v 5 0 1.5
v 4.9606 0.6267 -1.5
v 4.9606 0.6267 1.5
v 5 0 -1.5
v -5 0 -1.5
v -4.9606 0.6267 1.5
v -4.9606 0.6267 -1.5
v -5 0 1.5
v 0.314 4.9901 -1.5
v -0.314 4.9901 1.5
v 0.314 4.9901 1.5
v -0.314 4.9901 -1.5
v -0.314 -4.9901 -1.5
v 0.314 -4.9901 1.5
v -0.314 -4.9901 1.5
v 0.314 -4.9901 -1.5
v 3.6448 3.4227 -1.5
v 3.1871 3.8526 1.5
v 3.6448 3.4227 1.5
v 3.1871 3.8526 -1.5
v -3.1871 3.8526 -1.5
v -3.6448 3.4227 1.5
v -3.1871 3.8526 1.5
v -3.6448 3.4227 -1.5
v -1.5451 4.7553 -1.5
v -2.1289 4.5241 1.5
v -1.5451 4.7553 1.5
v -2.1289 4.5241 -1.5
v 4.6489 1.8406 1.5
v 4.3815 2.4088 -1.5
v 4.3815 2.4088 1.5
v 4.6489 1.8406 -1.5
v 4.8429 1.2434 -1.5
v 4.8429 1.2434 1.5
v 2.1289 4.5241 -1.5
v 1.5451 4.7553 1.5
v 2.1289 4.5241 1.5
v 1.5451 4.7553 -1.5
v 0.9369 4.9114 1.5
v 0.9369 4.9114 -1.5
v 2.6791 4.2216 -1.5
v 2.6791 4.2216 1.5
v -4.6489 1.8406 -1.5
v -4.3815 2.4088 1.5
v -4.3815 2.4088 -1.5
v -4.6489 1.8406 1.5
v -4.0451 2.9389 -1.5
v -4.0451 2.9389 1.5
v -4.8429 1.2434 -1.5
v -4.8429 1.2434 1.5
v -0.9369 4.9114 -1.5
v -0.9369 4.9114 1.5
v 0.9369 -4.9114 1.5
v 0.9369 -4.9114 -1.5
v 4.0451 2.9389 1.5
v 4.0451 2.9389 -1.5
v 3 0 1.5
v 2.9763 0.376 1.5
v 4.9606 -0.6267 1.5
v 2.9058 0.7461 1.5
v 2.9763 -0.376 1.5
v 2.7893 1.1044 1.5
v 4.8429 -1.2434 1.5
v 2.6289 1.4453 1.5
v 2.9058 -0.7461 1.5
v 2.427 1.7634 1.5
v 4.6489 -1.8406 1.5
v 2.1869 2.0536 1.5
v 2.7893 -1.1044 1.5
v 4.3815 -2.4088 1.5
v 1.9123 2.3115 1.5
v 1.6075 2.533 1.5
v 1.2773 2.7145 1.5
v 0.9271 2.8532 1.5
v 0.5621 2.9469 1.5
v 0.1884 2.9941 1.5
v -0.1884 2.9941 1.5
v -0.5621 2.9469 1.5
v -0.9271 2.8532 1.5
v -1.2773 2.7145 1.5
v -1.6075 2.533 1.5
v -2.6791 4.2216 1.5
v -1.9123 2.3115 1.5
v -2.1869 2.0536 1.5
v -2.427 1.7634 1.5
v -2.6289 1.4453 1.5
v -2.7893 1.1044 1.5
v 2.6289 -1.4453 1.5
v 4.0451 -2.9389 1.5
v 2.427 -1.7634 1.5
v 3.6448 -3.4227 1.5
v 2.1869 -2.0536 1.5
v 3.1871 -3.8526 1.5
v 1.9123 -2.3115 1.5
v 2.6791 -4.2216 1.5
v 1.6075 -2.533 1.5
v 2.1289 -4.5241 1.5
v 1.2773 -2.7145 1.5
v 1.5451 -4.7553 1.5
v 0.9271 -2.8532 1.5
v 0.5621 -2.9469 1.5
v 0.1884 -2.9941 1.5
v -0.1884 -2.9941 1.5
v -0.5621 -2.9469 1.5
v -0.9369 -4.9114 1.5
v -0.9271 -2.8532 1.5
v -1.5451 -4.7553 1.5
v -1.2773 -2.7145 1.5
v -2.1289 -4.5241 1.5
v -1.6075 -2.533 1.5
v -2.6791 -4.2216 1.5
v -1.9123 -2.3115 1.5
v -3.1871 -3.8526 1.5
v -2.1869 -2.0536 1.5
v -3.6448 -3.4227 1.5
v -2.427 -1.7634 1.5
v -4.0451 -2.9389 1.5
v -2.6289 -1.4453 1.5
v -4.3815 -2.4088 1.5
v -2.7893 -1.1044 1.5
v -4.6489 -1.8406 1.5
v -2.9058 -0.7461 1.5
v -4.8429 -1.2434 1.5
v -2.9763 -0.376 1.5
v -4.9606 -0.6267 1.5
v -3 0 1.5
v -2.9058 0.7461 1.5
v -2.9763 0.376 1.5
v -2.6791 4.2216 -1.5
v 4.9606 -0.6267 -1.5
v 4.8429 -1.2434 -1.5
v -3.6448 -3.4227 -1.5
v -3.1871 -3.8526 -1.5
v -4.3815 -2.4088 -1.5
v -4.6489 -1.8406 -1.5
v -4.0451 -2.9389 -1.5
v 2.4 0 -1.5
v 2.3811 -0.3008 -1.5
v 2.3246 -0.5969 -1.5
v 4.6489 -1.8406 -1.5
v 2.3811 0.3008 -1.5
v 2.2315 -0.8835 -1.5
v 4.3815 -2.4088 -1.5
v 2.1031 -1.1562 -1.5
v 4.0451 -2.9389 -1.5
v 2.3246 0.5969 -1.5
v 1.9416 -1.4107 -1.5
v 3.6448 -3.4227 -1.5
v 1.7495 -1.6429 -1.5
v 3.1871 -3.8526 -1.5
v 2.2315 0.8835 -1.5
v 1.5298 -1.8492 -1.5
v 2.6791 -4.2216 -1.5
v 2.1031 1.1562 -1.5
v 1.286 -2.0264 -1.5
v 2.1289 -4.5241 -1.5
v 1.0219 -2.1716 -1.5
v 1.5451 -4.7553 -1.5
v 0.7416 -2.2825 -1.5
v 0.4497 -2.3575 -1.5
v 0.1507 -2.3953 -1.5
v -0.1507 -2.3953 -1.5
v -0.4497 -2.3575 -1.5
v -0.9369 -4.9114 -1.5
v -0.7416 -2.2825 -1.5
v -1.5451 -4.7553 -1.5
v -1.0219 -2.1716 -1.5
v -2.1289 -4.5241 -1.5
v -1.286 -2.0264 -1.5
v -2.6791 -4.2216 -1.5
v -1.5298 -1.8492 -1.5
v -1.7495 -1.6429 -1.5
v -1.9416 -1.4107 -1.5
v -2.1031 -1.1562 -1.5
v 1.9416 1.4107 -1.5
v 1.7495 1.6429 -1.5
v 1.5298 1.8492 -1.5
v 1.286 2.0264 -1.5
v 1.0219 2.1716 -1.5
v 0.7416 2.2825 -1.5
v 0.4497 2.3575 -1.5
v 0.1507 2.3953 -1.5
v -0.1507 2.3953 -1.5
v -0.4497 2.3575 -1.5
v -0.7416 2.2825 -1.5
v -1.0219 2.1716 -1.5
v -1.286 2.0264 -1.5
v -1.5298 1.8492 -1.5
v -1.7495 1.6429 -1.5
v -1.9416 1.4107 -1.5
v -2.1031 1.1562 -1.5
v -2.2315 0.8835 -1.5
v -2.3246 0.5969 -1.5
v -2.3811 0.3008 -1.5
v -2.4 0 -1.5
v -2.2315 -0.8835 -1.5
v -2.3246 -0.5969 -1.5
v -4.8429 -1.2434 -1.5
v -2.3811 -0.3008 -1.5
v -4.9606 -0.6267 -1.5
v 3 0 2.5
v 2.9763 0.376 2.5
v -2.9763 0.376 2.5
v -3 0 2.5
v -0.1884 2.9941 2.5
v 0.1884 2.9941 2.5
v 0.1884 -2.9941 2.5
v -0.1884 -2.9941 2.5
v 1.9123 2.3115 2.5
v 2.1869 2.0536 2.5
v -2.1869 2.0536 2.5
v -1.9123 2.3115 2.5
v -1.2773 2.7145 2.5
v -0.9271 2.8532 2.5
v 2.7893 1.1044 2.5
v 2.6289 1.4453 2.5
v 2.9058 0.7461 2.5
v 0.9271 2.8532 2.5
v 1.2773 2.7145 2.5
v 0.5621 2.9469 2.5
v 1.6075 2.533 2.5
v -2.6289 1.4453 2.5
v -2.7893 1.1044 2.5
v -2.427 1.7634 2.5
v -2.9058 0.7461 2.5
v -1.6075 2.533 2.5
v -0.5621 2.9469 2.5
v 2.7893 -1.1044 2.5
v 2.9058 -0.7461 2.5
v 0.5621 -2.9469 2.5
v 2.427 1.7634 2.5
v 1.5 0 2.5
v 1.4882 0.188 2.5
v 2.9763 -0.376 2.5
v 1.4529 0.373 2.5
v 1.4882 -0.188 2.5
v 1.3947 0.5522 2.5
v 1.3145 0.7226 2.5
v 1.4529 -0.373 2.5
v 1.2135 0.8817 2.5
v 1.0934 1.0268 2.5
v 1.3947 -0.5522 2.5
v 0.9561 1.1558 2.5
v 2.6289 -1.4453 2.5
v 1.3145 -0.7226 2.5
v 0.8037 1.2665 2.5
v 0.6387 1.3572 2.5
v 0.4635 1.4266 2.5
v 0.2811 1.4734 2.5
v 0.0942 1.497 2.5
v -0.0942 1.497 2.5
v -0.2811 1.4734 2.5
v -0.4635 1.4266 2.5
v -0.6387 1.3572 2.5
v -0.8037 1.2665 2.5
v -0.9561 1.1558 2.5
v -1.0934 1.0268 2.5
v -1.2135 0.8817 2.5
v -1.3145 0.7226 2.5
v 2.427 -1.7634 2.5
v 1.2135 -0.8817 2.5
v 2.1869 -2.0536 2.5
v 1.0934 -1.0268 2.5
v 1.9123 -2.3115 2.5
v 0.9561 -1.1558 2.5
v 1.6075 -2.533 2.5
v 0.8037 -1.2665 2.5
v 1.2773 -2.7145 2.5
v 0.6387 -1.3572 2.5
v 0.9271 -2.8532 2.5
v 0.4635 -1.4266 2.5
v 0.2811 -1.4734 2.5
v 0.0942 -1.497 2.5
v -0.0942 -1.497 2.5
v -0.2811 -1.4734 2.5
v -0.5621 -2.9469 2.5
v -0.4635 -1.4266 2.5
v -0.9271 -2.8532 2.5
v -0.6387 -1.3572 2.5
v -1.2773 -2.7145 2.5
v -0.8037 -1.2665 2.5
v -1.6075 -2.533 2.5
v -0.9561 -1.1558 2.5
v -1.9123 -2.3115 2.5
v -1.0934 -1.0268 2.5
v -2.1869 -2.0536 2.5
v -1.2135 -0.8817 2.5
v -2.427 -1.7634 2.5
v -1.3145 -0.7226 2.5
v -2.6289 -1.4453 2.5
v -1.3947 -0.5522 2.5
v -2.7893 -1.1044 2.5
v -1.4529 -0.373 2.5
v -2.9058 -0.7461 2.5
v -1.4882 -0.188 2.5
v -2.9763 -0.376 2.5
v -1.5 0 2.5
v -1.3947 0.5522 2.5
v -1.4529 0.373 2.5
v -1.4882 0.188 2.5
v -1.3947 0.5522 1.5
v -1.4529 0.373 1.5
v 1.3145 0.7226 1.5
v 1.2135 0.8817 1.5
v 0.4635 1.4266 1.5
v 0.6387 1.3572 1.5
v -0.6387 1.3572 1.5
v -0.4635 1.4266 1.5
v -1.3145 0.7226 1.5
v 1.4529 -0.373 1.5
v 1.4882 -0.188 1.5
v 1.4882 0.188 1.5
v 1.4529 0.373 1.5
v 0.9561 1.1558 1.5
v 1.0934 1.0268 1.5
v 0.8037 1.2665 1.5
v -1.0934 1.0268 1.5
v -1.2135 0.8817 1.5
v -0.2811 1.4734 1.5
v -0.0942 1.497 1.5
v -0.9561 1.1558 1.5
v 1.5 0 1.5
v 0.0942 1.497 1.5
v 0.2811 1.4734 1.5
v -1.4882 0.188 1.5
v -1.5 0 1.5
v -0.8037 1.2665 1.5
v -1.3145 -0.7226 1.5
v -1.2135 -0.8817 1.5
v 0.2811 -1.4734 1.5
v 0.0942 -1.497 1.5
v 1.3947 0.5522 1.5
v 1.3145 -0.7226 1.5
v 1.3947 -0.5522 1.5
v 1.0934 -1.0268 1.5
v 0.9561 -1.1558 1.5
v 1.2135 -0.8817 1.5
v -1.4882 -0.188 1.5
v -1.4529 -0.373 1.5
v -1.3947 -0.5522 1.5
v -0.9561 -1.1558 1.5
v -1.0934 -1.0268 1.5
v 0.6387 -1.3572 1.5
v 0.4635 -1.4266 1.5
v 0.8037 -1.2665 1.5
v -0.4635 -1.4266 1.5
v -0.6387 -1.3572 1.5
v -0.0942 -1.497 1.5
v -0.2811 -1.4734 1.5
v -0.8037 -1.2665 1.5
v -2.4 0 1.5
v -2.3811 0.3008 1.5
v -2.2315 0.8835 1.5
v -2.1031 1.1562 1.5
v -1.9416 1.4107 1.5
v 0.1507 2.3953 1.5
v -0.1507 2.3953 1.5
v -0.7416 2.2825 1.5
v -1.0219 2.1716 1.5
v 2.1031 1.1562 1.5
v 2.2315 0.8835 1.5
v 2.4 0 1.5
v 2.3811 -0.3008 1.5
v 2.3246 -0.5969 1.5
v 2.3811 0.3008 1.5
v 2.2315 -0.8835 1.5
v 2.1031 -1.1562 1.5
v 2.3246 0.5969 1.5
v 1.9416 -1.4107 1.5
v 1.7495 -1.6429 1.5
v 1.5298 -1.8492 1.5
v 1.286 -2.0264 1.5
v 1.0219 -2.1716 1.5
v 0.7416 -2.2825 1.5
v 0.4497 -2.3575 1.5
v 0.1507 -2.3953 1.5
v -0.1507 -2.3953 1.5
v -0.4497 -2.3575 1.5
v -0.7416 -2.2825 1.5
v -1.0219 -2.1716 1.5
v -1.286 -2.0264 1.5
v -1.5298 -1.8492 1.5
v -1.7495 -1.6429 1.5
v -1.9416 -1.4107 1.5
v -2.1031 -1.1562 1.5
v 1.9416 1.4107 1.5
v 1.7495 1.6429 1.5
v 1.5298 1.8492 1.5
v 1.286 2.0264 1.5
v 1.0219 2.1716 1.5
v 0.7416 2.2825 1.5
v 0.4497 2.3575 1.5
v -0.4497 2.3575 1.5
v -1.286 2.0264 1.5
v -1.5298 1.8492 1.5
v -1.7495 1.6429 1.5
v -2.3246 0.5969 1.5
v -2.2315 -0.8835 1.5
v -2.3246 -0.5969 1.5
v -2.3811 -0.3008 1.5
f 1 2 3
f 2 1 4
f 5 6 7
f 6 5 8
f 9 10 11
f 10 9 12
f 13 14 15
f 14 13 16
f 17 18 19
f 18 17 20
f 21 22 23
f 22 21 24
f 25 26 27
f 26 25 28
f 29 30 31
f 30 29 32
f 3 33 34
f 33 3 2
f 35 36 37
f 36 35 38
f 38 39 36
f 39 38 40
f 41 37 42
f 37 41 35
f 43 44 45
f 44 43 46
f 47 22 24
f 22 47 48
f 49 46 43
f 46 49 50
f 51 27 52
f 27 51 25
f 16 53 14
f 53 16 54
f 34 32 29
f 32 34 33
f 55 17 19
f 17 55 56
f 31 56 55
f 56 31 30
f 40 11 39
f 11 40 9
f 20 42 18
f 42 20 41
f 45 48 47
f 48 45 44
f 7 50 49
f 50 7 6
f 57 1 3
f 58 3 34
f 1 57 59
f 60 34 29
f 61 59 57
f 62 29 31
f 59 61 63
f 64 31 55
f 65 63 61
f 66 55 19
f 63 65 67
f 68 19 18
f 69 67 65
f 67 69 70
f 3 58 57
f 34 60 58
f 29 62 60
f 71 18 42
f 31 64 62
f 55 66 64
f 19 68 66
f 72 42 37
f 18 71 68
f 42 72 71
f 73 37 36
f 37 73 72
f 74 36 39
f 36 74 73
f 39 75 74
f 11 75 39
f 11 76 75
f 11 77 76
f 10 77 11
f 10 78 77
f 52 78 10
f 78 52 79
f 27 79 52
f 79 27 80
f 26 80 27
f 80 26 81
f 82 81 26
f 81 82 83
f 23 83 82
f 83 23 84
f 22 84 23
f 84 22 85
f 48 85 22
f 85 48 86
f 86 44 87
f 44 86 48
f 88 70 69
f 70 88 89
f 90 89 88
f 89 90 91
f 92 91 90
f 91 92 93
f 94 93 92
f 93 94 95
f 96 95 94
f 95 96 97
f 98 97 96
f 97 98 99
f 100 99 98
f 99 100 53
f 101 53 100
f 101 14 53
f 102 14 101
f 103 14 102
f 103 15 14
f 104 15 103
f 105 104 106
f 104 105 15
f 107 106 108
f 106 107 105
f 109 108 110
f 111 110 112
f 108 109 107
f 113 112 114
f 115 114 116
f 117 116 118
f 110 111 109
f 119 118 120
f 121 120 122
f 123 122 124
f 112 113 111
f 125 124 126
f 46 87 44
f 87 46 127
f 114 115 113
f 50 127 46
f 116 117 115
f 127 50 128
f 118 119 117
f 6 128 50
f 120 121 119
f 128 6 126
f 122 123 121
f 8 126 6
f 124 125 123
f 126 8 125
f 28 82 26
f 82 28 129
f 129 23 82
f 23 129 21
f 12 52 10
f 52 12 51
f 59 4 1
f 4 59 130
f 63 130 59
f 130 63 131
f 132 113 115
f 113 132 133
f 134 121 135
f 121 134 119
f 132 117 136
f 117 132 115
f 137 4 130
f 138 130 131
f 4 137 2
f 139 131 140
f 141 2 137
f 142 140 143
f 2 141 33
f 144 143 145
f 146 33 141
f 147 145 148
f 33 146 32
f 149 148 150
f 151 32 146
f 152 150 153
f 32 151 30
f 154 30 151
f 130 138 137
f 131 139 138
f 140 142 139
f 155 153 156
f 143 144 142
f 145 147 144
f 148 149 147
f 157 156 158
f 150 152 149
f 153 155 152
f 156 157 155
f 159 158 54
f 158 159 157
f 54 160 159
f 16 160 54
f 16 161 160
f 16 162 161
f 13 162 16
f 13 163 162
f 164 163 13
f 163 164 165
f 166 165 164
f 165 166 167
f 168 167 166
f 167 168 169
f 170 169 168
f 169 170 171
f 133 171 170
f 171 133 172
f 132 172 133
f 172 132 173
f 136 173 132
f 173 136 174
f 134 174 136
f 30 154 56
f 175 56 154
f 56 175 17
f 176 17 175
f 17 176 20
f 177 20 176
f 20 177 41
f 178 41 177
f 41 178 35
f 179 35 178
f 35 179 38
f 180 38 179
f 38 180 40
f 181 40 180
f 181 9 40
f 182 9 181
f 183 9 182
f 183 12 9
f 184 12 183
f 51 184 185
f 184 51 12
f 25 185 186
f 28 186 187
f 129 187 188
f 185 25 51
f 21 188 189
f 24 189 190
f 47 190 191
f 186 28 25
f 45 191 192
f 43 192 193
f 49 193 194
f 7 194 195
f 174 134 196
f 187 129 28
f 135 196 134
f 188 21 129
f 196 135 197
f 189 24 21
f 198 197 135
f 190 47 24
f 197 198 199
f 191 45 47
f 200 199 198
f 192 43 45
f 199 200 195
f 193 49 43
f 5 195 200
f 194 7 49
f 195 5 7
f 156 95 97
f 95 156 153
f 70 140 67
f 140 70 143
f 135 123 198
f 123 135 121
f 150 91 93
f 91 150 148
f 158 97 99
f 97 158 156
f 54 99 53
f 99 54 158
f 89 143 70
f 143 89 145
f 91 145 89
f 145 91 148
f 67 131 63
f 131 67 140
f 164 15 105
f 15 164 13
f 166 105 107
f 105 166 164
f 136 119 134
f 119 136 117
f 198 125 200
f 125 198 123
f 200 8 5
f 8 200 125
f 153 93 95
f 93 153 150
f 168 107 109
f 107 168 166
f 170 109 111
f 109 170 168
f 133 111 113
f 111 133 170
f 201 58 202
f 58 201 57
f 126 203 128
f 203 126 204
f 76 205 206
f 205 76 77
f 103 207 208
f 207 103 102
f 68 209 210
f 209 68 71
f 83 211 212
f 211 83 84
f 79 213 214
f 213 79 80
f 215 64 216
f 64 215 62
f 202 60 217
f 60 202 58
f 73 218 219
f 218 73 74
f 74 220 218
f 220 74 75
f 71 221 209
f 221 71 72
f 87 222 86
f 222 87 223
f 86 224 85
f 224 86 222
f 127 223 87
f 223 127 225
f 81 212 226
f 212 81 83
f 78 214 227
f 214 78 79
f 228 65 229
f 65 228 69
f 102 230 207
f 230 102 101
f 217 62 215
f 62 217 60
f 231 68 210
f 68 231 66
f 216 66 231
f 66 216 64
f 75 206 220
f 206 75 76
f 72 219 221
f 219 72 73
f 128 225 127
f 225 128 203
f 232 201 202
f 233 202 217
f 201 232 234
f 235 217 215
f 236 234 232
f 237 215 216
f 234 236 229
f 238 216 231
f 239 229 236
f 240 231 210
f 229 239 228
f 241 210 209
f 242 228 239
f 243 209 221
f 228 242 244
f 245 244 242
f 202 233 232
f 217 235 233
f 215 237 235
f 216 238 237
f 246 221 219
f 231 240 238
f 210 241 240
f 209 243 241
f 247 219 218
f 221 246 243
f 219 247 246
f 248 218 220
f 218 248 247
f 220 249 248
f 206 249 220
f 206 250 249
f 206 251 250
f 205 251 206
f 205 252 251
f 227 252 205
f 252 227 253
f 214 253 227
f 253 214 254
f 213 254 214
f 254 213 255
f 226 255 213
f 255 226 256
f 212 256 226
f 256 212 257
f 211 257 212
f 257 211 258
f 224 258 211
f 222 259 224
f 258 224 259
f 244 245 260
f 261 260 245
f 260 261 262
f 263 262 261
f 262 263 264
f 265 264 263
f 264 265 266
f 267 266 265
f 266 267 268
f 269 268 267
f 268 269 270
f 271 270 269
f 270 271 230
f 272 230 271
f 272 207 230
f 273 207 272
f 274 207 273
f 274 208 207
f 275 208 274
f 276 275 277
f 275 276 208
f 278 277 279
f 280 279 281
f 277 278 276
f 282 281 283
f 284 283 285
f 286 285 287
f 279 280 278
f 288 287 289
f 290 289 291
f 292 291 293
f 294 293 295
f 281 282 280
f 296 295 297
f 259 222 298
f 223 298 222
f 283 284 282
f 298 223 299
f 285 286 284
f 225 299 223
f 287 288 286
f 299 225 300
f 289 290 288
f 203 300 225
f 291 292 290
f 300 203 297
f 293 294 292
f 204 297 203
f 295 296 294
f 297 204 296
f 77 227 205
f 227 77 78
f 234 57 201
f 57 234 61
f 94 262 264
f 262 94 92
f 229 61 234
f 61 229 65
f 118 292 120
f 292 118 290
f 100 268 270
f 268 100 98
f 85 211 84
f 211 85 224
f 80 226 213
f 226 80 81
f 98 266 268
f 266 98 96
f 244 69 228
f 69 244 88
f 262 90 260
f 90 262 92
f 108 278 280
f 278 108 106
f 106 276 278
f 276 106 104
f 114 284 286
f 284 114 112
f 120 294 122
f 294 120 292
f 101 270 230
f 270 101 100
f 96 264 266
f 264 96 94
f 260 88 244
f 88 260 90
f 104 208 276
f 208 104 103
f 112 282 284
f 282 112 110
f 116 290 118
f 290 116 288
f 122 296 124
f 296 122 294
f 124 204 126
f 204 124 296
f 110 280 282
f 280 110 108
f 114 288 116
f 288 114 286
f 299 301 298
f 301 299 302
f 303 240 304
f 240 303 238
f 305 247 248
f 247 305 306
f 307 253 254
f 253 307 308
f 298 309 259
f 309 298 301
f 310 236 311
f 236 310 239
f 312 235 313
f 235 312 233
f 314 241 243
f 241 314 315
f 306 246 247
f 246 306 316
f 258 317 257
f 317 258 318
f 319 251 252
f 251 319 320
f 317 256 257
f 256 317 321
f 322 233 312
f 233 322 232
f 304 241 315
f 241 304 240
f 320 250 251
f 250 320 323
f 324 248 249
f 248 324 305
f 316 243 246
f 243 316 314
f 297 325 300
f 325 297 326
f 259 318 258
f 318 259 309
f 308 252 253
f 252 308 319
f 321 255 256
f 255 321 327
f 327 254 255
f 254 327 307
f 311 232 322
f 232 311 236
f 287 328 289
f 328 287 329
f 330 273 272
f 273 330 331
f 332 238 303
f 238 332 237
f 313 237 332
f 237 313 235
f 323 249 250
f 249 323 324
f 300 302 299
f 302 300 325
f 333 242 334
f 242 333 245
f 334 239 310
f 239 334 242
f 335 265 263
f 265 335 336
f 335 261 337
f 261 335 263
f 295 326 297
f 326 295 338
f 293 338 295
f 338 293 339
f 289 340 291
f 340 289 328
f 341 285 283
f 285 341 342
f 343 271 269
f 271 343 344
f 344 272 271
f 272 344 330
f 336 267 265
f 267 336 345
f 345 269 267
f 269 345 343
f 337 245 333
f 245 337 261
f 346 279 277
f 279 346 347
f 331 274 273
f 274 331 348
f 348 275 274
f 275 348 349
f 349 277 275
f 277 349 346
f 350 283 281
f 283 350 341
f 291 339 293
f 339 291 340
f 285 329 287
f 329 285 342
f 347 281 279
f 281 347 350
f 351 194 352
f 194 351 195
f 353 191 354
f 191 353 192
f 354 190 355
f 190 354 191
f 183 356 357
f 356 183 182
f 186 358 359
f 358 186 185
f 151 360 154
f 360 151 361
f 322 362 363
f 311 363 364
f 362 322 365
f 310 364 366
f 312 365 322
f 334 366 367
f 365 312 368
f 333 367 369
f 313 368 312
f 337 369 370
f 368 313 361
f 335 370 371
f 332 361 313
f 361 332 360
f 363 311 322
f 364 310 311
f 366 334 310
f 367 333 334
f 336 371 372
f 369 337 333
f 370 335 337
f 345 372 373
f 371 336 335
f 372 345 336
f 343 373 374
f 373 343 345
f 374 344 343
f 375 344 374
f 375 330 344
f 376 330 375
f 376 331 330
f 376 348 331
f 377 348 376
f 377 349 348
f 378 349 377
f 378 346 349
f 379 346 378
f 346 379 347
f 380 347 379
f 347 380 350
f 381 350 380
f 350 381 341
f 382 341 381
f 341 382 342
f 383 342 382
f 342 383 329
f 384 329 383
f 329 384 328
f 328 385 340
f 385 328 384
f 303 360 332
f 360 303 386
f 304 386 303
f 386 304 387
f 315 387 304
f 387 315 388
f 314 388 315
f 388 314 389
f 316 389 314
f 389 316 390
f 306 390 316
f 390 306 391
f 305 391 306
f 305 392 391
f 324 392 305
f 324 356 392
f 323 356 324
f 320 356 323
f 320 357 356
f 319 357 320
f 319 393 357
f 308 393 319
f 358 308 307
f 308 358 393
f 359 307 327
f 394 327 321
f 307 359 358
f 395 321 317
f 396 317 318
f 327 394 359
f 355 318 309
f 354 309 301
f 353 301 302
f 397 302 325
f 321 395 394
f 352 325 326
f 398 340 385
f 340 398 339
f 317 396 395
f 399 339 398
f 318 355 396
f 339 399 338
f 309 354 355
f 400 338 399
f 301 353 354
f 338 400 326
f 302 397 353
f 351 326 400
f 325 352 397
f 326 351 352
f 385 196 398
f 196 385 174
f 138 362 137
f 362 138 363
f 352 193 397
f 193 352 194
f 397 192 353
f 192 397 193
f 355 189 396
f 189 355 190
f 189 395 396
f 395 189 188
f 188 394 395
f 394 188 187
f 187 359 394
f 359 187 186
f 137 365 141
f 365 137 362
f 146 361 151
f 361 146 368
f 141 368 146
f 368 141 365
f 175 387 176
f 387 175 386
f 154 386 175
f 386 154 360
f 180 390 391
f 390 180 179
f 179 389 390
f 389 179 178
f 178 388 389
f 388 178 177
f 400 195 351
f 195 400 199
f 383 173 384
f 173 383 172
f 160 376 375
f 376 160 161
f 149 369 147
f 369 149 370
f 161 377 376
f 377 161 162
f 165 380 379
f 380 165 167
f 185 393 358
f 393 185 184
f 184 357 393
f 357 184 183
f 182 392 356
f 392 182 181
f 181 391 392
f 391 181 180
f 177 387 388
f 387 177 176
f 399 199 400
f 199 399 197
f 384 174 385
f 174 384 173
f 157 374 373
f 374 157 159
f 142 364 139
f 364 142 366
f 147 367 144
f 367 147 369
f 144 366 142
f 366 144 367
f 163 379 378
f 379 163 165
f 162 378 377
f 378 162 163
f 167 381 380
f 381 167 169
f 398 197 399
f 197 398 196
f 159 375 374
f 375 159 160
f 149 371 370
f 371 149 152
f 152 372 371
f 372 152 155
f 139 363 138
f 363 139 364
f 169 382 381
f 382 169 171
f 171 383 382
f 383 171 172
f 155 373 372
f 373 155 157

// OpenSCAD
$fn = 50;


difference() {
	union() {
		translate(v = [0, 0, -1.5000000000]) {
			rotate(a = [0, 0, 0]) {
				cylinder(h = 3, r = 5.0000000000);
			}
		}
		translate(v = [0, 0, -1.5000000000]) {
			rotate(a = [0, 0, 0]) {
				cylinder(h = 4, r = 3.0000000000);
			}
		}
	}
	union() {
		translate(v = [0, 0, -125.0000000000]) {
			rotate(a = [0, 0, 0]) {
				cylinder(h = 250, r = 1.5000000000);
			}
		}
		#translate(v = [0, 0, 1.5000000000]) {
			rotate(a = [0, 180, 0]) {
				cylinder(h = 3, r1 = 2.4000000000, r2 = 2.4000000000);
			}
		}
		#translate(v = [0, 0, 2.5000000000]) {
			rotate(a = [0, 180, 0]) {
				cylinder(h = 4, r = 1.5000000000);
			}
		}
	}
}
